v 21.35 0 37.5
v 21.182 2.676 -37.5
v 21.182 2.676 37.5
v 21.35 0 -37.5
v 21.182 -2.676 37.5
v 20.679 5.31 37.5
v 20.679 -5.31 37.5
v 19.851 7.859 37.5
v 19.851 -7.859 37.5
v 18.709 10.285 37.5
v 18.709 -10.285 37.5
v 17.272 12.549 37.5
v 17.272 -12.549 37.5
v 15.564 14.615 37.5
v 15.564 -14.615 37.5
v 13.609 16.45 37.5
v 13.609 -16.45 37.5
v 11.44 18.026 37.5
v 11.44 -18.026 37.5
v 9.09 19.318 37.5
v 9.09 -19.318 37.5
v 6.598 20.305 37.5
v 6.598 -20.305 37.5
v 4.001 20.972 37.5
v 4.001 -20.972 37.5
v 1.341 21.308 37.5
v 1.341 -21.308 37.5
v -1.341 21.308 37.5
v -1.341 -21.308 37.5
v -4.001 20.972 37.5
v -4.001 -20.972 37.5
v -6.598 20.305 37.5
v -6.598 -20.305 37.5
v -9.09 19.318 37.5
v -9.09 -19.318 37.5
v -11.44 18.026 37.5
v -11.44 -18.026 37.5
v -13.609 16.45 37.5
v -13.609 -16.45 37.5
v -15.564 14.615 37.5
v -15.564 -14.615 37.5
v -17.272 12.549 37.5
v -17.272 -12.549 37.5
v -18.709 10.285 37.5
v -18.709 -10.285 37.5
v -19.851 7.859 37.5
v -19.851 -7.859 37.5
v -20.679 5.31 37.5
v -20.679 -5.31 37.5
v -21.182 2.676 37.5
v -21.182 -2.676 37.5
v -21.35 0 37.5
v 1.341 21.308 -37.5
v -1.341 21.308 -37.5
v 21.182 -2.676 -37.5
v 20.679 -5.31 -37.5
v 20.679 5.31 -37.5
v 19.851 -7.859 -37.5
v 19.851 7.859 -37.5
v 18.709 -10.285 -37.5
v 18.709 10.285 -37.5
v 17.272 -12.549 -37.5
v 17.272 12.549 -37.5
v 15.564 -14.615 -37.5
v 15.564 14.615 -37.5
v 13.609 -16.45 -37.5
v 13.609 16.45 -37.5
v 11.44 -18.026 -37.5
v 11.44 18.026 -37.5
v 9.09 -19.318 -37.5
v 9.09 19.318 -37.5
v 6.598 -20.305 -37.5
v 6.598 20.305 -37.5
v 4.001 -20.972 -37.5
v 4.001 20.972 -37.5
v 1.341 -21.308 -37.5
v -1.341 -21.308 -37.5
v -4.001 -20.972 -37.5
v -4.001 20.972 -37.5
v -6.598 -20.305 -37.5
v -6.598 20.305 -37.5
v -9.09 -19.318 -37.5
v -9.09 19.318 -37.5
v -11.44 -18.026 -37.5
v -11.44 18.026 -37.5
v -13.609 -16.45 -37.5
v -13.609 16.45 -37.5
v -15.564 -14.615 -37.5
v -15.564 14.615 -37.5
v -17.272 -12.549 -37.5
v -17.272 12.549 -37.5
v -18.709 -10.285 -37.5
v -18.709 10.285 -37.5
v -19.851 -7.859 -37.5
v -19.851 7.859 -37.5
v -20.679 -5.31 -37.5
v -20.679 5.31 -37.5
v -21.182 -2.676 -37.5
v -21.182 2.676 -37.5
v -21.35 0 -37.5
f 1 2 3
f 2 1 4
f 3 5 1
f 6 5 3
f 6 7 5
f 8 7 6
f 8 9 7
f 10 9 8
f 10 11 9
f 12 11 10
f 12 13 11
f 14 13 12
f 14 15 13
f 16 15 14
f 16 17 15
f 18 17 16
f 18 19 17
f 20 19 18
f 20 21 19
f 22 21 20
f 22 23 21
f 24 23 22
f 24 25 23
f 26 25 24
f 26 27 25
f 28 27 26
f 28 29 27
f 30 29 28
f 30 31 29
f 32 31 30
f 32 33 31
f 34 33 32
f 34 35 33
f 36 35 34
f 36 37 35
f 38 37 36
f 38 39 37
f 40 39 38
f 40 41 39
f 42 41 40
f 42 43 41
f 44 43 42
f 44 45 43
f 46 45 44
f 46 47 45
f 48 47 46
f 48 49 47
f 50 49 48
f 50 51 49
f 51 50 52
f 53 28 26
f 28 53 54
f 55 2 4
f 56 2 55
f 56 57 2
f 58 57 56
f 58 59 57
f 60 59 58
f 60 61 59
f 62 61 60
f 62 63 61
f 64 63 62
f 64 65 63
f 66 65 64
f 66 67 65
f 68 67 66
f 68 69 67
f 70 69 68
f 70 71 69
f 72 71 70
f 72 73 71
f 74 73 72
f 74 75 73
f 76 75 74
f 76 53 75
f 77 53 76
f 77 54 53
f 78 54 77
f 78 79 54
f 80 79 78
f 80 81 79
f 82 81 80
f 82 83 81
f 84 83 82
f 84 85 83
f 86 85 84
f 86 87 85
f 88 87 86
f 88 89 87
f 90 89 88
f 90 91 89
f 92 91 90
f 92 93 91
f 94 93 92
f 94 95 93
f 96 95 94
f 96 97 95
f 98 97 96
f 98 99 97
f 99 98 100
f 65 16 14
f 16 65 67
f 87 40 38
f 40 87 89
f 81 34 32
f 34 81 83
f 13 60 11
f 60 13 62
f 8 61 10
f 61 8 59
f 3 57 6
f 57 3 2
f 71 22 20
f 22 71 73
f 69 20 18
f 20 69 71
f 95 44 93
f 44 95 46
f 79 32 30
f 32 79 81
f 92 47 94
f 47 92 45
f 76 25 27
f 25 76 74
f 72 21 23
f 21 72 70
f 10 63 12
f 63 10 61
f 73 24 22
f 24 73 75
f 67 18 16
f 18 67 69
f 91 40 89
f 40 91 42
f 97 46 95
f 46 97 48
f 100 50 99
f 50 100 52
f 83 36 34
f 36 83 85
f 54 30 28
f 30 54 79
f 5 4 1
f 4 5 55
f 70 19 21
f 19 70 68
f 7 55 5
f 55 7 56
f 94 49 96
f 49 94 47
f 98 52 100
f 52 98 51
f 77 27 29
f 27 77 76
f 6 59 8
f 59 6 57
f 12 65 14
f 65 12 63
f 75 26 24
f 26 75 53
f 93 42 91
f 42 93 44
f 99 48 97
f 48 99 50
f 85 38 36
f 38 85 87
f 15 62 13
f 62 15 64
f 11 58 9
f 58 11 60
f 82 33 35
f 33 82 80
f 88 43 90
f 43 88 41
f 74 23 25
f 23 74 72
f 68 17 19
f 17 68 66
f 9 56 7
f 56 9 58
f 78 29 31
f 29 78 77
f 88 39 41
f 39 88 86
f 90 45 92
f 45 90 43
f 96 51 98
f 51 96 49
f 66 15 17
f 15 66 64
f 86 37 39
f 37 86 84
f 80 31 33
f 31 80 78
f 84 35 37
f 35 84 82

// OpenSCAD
$fn = 50;


difference() {
	union() {
		translate(v = [0, 0, -37.5000000000]) {
			cylinder(h = 75, r = 21.3500000000);
		}
	}
	union() {
		translate(v = [0, 0, -100.0000000000]) {
			cylinder(h = 200, r = 0);
		}
	}
}
